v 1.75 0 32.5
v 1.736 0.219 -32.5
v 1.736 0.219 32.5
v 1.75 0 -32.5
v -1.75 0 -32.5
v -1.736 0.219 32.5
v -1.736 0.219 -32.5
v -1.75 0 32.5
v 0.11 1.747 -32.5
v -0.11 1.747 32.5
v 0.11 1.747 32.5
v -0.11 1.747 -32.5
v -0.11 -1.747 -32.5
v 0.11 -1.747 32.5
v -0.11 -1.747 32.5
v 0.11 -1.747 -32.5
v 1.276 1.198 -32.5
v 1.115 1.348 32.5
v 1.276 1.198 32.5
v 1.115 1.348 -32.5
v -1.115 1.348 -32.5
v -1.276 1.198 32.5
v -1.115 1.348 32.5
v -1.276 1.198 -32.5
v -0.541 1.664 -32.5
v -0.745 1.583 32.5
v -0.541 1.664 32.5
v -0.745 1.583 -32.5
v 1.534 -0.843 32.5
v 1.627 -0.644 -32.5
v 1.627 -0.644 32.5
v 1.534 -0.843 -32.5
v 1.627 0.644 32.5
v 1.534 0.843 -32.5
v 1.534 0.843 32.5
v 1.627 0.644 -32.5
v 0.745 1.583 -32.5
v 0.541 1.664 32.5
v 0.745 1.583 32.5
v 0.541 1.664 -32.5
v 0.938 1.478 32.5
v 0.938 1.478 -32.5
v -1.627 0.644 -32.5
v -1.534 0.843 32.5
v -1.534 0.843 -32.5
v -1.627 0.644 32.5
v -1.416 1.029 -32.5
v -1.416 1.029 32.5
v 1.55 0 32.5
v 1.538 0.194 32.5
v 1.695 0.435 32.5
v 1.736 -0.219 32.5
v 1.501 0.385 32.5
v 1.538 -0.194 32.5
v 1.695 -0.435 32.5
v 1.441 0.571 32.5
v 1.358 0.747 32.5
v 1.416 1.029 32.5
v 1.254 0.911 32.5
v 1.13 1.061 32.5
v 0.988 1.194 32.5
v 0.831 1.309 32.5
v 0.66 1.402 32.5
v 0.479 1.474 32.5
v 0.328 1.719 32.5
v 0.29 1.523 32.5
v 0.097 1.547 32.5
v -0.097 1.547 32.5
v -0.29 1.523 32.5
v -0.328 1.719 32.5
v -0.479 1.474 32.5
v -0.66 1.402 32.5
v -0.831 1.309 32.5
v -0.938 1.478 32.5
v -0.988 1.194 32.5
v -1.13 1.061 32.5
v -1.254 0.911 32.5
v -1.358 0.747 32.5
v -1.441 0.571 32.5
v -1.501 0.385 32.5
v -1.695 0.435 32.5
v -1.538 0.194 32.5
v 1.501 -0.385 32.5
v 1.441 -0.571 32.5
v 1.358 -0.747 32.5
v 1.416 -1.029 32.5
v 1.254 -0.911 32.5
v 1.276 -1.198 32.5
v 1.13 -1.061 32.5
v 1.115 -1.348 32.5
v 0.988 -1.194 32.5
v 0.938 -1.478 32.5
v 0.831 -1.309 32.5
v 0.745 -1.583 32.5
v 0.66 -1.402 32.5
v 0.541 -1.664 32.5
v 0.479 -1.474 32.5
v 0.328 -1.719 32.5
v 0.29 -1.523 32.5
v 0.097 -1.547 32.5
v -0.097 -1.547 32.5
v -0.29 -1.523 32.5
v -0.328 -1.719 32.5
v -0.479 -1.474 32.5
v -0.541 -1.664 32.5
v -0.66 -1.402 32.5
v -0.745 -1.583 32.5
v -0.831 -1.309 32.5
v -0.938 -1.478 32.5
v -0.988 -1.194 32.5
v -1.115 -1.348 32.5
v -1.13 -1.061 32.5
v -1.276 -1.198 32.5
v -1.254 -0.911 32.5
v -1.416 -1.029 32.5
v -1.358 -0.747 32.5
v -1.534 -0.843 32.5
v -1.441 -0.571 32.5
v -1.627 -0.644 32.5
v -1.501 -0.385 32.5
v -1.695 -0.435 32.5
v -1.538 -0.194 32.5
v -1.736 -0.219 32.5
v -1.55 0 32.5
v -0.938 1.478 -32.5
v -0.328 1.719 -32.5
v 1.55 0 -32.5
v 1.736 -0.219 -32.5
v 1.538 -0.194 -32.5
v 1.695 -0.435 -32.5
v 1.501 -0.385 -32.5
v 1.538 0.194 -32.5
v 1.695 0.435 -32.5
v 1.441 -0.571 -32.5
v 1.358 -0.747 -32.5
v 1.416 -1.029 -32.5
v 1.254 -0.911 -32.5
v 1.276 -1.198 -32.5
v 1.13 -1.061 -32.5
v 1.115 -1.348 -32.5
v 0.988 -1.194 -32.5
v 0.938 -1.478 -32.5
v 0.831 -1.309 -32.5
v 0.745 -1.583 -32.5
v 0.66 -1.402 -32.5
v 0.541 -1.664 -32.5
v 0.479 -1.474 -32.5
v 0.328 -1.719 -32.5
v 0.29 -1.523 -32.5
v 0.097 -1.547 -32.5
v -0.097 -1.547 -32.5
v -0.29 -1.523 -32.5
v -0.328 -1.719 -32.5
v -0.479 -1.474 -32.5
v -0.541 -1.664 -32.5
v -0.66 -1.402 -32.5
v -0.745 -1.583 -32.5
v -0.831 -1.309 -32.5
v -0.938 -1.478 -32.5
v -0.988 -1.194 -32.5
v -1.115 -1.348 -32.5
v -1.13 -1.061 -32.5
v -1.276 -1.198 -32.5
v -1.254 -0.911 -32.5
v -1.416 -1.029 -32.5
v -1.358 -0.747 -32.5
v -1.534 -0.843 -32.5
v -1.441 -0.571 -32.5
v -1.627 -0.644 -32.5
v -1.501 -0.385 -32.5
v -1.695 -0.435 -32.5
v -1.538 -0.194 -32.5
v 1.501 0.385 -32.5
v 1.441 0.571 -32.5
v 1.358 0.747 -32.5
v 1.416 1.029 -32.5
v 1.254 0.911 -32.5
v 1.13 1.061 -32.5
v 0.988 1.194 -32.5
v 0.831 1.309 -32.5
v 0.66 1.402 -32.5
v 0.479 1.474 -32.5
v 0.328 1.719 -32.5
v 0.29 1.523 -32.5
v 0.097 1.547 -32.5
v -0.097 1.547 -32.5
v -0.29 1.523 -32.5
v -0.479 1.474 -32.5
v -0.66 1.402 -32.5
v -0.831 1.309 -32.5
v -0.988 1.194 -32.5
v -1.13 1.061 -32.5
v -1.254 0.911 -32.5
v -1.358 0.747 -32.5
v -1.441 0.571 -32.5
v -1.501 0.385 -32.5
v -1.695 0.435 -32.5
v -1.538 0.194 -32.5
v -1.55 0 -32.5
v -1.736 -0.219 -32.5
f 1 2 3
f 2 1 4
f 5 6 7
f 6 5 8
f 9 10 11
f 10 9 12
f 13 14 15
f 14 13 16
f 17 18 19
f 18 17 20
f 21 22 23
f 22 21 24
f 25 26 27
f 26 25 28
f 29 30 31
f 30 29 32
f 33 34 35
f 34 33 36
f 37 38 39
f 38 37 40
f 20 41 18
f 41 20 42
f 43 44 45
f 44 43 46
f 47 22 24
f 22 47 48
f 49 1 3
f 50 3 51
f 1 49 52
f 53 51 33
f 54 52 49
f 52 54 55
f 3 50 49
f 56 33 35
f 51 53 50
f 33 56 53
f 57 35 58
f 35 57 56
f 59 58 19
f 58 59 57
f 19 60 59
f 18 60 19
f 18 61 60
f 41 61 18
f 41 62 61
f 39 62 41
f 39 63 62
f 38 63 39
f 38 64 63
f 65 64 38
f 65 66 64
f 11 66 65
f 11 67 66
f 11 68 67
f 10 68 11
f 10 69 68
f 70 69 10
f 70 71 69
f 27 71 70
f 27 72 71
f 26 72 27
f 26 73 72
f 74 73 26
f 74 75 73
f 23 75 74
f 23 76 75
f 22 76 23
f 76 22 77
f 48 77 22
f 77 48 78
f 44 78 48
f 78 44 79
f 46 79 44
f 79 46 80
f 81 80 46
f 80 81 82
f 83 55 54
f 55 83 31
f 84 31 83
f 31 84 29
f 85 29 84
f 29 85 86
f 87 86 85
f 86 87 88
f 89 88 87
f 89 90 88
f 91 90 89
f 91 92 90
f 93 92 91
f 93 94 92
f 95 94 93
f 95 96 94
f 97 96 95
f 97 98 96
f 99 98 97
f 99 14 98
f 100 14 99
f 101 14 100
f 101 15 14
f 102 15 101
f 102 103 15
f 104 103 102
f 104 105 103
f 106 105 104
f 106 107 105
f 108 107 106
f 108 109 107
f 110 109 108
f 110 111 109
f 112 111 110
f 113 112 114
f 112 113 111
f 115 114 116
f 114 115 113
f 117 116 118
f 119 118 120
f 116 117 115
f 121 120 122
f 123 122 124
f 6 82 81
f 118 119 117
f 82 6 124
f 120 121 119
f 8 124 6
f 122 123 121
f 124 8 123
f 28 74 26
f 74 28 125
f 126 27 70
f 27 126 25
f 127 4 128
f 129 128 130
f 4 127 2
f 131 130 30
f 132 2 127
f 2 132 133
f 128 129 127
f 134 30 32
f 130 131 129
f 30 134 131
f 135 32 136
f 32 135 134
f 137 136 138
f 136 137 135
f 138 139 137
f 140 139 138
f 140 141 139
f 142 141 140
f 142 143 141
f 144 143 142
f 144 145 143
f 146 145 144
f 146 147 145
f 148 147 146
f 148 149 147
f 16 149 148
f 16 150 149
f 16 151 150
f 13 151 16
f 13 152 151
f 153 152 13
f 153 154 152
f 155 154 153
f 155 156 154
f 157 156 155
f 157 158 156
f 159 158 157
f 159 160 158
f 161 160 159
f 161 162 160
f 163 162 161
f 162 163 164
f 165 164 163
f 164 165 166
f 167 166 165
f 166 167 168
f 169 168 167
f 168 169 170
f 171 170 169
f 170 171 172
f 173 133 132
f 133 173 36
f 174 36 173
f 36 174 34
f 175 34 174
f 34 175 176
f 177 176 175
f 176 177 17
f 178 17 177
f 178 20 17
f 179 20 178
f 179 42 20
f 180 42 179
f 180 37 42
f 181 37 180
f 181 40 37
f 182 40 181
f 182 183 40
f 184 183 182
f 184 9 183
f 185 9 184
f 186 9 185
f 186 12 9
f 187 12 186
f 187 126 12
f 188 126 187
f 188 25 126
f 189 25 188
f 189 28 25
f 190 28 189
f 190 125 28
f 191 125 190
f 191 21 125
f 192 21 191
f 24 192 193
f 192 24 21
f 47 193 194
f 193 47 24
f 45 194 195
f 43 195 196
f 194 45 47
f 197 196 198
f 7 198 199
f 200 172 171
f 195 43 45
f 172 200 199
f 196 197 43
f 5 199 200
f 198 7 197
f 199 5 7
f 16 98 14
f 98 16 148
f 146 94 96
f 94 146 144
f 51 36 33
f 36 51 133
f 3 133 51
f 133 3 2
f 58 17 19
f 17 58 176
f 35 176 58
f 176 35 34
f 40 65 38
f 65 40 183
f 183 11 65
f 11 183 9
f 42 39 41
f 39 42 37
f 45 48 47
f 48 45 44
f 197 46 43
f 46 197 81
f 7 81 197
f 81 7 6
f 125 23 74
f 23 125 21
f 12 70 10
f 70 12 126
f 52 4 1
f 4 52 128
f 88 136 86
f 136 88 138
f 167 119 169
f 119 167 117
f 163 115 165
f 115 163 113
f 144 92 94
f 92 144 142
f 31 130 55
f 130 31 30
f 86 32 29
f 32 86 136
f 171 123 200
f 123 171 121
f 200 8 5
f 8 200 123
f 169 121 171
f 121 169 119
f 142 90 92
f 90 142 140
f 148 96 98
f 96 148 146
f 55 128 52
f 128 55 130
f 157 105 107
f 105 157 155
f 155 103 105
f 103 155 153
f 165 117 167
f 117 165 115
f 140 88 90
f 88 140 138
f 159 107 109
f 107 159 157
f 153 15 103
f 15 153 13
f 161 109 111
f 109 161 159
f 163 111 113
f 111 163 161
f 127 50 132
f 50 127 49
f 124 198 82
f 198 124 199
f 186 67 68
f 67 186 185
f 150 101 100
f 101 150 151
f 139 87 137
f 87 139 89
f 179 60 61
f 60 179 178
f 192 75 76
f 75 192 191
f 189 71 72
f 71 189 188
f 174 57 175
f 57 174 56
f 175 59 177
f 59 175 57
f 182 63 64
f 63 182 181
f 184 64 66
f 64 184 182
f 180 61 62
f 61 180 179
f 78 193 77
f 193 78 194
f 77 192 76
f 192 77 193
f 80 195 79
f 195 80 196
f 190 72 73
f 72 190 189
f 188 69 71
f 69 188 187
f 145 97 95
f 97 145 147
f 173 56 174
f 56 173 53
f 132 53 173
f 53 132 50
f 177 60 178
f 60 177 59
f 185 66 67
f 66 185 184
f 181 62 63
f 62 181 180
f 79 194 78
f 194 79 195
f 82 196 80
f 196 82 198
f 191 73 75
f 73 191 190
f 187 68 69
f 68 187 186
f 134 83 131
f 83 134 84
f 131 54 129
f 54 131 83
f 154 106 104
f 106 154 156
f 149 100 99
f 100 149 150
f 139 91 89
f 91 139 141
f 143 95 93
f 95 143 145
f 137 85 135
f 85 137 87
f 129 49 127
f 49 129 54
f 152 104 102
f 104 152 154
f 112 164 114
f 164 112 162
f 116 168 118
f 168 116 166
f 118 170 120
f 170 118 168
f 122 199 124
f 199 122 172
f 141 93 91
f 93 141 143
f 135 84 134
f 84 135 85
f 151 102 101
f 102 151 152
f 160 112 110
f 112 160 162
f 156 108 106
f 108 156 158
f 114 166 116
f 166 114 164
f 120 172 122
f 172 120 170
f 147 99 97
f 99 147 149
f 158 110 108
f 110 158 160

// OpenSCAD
$fn = 50;


difference() {
	union() {
		translate(v = [0, 0, -32.5000000000]) {
			cylinder(h = 65, r = 1.7500000000);
		}
	}
	union() {
		translate(v = [0, 0, -100.0000000000]) {
			cylinder(h = 200, r = 1.5500000000);
		}
	}
}
